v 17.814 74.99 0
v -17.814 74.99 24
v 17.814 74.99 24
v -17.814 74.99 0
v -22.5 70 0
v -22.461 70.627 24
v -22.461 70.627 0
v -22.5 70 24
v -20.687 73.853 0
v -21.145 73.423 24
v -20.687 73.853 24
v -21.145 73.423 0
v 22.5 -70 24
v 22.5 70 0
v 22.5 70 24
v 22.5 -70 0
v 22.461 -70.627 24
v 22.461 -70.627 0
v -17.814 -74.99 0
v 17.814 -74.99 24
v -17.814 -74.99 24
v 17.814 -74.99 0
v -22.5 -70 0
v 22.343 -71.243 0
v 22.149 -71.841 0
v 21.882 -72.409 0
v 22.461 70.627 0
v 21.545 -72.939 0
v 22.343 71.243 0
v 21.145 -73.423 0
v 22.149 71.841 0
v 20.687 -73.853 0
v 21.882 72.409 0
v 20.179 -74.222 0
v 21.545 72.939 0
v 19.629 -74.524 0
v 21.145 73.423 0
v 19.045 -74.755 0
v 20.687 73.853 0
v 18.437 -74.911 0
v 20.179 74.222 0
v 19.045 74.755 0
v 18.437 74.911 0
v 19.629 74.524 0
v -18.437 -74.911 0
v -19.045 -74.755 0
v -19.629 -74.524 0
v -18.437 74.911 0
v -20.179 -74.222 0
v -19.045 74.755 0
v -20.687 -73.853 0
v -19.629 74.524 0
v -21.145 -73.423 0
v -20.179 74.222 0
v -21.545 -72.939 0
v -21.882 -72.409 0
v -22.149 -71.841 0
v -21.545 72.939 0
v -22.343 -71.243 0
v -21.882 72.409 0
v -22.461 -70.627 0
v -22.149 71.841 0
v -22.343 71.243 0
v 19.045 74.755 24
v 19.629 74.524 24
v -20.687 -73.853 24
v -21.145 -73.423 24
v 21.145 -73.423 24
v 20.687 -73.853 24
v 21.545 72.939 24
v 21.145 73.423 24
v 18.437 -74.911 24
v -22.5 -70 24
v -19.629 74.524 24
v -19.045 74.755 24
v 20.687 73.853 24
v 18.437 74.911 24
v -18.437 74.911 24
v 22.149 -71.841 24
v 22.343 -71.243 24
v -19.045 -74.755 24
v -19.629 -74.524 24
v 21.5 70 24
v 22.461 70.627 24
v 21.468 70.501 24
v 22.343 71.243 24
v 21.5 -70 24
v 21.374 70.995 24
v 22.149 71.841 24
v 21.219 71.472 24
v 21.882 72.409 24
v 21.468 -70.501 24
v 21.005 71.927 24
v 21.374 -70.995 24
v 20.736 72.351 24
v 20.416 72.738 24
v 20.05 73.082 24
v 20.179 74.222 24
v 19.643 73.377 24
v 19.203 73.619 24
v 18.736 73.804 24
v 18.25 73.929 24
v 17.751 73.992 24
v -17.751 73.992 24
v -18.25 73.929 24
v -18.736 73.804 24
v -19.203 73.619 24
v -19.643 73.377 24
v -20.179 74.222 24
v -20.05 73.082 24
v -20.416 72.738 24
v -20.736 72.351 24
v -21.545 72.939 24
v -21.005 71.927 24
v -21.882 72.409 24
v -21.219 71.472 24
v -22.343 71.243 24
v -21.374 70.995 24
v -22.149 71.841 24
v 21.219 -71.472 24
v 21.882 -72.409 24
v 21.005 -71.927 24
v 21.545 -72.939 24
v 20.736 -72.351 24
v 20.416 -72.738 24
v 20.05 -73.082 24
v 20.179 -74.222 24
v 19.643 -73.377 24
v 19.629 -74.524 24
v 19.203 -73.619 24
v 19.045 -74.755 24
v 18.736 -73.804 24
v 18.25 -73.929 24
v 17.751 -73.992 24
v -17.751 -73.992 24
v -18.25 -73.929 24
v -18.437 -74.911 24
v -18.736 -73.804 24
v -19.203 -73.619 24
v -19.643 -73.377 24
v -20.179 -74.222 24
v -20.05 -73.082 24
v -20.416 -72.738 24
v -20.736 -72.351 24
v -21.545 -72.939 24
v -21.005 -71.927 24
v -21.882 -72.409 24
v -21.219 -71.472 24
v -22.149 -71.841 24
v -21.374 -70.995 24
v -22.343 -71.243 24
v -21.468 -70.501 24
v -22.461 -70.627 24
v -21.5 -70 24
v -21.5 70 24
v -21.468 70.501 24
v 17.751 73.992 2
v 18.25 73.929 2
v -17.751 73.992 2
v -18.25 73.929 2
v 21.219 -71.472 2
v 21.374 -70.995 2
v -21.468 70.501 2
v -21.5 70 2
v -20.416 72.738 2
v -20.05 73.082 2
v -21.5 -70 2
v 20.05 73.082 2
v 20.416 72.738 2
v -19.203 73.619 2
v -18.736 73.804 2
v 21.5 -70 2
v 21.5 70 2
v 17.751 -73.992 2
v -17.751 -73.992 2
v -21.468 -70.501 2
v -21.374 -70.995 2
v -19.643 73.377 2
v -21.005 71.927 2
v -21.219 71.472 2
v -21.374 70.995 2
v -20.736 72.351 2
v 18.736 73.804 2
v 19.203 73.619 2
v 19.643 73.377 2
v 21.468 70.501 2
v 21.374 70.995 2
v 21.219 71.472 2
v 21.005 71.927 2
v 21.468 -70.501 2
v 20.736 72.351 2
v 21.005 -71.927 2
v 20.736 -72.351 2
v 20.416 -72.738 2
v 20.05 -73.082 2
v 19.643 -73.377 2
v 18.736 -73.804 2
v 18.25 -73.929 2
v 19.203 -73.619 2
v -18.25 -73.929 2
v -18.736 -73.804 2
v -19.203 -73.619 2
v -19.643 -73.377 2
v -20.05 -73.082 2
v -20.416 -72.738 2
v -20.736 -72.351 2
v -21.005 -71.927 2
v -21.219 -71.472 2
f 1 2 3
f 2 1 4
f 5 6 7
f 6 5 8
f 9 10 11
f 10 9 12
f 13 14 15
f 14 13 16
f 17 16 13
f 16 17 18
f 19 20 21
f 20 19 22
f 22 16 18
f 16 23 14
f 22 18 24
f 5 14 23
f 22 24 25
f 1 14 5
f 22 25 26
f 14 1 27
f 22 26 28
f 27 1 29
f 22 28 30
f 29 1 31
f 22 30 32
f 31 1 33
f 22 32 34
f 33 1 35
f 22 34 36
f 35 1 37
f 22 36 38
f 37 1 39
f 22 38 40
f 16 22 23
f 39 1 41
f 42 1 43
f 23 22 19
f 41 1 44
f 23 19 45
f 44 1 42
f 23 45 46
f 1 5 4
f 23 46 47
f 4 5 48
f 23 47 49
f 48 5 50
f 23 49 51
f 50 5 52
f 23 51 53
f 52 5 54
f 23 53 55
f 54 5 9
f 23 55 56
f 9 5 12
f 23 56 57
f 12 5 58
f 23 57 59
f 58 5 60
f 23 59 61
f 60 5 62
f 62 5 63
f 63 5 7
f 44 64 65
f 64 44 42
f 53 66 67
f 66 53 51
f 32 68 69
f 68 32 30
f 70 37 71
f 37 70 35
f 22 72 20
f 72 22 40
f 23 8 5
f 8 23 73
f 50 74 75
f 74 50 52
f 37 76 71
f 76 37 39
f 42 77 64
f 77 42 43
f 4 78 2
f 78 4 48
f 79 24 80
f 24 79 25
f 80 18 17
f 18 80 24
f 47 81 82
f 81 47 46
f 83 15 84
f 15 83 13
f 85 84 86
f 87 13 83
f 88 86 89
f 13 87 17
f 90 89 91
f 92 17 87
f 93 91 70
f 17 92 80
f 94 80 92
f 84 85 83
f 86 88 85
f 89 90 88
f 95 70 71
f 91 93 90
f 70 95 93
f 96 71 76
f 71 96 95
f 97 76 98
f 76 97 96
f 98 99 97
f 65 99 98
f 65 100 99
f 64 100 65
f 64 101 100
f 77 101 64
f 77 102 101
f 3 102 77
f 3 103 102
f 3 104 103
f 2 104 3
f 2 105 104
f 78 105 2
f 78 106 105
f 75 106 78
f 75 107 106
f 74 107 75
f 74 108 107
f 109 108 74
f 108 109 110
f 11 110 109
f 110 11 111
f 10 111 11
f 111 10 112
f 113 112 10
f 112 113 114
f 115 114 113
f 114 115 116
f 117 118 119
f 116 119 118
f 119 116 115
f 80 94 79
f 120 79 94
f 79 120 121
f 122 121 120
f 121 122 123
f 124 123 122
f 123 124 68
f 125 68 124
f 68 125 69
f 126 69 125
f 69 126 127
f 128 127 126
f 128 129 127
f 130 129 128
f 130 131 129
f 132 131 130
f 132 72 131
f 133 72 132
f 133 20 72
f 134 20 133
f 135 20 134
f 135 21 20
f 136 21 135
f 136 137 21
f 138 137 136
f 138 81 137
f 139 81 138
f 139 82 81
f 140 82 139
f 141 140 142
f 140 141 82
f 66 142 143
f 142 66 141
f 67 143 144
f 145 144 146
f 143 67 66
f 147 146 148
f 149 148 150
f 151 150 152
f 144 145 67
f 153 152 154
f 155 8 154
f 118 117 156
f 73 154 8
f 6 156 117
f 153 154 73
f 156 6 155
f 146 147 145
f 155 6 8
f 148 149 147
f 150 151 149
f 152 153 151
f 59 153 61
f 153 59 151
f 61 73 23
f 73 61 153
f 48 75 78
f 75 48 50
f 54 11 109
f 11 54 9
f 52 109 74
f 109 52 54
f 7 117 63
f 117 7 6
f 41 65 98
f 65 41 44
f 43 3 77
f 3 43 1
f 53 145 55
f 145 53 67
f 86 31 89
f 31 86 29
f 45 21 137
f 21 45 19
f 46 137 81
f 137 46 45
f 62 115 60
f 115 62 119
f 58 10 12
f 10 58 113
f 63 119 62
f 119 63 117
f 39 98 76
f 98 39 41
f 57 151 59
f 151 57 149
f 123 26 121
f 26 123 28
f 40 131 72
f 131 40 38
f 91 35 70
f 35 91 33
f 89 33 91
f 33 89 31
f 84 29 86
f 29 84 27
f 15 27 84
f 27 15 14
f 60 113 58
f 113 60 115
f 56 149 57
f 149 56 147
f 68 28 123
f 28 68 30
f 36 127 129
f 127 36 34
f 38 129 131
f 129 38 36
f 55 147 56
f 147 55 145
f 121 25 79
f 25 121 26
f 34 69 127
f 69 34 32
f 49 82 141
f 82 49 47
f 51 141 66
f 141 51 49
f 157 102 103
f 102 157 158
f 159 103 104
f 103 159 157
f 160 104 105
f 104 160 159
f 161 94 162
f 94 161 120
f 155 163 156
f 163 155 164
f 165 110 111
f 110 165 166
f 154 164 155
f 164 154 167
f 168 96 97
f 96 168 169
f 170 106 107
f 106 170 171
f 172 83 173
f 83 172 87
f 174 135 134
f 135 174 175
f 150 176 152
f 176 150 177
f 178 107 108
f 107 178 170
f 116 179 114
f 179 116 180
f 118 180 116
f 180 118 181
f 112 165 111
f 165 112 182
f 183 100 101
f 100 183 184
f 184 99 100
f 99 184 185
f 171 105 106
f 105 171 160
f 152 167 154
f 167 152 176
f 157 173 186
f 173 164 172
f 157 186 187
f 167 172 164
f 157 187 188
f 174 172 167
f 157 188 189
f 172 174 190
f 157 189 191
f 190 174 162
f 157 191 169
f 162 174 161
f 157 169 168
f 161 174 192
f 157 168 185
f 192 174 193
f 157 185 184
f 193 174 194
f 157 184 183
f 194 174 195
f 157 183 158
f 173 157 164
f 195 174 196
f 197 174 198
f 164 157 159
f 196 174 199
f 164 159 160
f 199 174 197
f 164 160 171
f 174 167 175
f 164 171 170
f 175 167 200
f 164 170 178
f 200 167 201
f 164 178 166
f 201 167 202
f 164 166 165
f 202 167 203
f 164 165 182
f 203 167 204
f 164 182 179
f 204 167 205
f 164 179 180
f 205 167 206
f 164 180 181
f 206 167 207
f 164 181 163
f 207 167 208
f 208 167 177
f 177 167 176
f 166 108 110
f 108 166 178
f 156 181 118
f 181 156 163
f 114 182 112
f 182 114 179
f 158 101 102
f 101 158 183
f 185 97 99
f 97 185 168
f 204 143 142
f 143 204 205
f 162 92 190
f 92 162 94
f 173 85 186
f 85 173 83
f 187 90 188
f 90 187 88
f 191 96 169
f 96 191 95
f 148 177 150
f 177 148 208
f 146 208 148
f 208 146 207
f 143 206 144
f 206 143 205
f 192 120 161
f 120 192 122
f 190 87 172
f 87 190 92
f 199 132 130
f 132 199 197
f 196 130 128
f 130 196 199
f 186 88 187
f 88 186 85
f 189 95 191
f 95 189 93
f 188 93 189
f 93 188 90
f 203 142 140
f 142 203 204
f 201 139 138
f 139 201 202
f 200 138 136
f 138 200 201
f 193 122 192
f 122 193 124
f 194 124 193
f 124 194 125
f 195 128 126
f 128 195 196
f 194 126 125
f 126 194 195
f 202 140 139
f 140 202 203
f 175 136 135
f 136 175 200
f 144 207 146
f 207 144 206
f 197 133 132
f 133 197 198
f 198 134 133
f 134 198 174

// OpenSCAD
$fn = 50;


difference() {
	union() {
		hull() {
			translate(v = [-17.5000000000, 70.0000000000, 0]) {
				cylinder(h = 24, r = 5);
			}
			translate(v = [17.5000000000, 70.0000000000, 0]) {
				cylinder(h = 24, r = 5);
			}
			translate(v = [-17.5000000000, -70.0000000000, 0]) {
				cylinder(h = 24, r = 5);
			}
			translate(v = [17.5000000000, -70.0000000000, 0]) {
				cylinder(h = 24, r = 5);
			}
		}
	}
	union() {
		translate(v = [0, 0, 2]) {
			hull() {
				translate(v = [-17.5000000000, 70.0000000000, 0]) {
					cylinder(h = 22, r = 4);
				}
				translate(v = [17.5000000000, 70.0000000000, 0]) {
					cylinder(h = 22, r = 4);
				}
				translate(v = [-17.5000000000, -70.0000000000, 0]) {
					cylinder(h = 22, r = 4);
				}
				translate(v = [17.5000000000, -70.0000000000, 0]) {
					cylinder(h = 22, r = 4);
				}
			}
		}
	}
}
